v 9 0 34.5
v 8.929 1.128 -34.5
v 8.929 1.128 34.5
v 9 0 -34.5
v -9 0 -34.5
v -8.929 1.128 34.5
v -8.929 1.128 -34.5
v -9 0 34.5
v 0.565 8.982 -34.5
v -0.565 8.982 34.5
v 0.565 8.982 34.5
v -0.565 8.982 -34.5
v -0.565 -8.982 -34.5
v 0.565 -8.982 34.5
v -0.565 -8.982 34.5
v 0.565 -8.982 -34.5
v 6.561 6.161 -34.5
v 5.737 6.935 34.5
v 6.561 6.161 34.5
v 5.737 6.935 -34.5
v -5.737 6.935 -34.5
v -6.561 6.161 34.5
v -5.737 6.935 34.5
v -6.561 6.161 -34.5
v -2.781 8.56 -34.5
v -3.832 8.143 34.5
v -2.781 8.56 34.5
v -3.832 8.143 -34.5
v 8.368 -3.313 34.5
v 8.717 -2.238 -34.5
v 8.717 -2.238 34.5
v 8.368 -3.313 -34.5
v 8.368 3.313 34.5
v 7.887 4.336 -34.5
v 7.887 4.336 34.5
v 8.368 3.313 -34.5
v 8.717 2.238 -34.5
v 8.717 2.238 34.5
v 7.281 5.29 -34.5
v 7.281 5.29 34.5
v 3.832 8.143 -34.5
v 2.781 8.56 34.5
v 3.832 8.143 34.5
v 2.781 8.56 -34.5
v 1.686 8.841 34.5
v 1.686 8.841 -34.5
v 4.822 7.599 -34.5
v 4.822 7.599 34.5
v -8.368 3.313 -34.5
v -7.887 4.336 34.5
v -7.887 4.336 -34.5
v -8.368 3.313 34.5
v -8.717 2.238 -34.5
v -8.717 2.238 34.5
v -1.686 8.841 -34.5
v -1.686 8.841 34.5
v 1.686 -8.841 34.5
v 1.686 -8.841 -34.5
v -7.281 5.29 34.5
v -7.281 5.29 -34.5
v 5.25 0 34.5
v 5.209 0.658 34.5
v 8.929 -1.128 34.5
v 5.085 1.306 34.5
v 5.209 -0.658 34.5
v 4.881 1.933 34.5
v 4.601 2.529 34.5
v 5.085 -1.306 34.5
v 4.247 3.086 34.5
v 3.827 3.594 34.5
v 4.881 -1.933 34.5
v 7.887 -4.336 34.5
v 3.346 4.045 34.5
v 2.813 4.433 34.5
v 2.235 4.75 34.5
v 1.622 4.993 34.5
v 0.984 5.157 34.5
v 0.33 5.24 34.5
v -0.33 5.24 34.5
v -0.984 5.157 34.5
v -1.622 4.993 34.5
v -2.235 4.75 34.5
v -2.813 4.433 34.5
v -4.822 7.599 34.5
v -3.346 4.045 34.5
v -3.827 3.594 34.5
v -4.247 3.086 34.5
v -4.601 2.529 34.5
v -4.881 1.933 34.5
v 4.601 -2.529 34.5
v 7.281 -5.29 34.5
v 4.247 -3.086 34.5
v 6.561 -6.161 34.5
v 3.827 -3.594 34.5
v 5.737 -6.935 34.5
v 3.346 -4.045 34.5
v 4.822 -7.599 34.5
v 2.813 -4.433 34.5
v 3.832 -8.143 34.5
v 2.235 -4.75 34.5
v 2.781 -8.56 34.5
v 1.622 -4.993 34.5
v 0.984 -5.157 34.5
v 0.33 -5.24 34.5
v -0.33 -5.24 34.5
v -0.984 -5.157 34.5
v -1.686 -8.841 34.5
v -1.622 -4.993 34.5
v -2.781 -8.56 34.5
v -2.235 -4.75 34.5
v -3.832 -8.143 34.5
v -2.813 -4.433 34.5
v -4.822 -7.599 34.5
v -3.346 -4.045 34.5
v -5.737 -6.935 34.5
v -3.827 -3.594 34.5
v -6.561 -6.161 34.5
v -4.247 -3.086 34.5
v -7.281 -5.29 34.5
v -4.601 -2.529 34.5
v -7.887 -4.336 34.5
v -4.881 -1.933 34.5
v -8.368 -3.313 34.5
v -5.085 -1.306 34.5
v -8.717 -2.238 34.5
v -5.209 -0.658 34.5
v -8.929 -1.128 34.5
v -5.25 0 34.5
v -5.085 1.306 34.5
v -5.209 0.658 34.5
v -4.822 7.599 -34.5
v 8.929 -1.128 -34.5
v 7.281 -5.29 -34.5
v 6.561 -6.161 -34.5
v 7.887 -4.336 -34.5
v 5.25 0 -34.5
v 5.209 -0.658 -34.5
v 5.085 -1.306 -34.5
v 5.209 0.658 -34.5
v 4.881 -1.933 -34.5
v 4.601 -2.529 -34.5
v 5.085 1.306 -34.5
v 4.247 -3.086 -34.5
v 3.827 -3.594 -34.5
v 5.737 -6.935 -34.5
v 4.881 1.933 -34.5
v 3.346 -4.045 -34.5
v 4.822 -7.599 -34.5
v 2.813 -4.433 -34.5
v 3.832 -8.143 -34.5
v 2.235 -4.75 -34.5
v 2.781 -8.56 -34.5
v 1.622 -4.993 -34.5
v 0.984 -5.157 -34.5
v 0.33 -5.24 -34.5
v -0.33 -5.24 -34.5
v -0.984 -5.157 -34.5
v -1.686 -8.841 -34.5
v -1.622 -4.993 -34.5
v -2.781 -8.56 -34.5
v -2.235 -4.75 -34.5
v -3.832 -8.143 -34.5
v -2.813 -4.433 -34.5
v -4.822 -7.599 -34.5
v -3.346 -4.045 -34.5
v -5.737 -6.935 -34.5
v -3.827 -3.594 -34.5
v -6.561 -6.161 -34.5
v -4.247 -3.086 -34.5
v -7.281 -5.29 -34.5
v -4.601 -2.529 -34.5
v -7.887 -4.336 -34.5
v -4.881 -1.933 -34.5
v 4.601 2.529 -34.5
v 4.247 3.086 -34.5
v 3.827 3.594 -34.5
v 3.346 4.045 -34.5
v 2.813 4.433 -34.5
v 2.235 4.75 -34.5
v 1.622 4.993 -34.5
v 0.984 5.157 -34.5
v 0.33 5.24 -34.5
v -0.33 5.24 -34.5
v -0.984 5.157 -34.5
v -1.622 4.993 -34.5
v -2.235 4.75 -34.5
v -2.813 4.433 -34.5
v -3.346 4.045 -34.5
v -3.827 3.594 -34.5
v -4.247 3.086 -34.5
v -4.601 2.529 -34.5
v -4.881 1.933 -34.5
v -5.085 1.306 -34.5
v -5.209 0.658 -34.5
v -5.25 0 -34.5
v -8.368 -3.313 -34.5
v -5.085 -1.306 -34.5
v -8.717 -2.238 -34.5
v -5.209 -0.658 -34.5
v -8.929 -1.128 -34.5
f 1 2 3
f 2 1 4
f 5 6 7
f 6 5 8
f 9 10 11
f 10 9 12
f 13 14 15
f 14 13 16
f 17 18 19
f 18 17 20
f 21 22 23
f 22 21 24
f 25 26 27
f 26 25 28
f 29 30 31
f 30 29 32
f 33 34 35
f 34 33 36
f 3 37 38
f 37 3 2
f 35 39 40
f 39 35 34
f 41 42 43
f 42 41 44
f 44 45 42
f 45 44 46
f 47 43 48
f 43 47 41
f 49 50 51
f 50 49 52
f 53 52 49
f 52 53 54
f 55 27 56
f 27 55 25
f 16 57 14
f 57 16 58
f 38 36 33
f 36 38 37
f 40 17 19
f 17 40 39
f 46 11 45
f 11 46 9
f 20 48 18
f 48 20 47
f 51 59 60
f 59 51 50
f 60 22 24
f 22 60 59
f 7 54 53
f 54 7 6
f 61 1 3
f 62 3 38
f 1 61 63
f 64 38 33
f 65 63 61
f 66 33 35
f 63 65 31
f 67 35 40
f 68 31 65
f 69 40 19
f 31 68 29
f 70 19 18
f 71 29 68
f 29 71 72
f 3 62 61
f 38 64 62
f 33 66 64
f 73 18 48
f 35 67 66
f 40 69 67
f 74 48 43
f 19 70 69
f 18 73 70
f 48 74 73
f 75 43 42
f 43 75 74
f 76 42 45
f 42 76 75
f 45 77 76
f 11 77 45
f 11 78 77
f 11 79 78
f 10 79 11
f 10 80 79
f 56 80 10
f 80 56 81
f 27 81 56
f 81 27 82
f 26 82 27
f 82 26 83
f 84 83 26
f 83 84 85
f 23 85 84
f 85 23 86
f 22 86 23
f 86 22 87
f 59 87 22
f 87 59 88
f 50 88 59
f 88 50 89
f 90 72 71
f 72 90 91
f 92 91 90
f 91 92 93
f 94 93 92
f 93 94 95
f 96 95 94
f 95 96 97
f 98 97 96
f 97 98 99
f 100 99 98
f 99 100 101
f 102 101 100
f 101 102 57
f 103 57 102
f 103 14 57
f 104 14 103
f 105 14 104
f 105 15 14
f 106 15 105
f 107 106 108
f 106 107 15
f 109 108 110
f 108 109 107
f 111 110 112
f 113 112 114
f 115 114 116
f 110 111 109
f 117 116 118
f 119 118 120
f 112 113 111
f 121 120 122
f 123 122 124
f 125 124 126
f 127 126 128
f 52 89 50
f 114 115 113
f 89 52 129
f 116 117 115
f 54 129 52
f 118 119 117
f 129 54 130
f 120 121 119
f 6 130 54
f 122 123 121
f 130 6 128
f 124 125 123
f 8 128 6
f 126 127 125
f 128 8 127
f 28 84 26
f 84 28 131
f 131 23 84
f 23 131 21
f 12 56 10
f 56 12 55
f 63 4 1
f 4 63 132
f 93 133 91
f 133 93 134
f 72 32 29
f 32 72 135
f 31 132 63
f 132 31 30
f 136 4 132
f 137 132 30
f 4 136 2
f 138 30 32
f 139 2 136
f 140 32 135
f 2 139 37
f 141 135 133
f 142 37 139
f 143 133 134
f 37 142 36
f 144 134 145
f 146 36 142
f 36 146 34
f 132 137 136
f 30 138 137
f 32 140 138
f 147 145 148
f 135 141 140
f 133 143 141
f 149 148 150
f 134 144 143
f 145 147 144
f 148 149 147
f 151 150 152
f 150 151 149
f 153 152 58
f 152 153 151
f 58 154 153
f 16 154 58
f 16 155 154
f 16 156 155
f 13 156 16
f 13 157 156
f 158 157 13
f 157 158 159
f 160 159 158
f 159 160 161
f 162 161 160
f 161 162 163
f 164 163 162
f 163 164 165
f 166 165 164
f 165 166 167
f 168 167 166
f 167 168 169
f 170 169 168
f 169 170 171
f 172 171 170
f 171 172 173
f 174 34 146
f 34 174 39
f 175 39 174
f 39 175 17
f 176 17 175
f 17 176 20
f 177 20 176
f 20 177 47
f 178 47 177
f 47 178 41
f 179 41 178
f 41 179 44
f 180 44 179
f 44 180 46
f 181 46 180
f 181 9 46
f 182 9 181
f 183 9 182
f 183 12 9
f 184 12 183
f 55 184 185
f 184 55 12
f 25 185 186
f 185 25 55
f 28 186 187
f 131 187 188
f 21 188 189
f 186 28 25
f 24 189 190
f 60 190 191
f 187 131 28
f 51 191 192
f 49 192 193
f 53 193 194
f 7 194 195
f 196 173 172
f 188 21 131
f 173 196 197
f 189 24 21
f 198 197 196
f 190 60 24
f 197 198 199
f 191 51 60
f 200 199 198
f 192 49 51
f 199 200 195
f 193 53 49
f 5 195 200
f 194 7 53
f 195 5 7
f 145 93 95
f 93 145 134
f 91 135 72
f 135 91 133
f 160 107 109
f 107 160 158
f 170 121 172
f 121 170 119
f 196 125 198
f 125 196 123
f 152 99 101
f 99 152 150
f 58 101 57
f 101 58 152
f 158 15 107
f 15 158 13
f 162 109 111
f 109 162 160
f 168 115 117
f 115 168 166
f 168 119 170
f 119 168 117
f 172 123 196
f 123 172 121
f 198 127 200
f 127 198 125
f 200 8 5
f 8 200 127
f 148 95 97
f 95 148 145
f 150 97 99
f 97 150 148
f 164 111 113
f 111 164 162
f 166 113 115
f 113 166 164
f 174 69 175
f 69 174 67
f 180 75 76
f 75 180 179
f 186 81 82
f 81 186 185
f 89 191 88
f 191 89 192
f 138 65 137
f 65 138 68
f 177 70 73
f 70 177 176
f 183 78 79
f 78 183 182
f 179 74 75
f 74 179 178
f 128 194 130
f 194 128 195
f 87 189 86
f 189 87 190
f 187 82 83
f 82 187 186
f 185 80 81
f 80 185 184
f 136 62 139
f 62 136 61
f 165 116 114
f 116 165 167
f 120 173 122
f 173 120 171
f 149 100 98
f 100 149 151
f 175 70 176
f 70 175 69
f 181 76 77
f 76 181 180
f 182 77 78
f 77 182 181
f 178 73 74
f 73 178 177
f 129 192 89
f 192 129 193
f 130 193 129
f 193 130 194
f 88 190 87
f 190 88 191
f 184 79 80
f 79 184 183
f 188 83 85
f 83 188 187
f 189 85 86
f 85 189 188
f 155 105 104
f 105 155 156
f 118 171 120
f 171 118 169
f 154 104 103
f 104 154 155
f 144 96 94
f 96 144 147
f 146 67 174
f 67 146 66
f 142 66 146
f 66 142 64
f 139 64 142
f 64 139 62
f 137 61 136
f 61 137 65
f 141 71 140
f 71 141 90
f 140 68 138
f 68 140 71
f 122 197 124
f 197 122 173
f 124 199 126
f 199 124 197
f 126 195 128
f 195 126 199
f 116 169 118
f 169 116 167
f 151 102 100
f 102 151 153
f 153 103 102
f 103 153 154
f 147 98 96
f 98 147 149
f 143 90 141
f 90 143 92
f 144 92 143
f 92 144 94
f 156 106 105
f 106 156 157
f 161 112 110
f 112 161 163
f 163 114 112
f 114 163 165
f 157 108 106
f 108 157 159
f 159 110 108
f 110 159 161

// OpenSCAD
$fn = 50;


difference() {
	union() {
		translate(v = [0, 0, -34.5000000000]) {
			cylinder(h = 69, r = 9.0000000000);
		}
	}
	union() {
		translate(v = [0, 0, -100.0000000000]) {
			cylinder(h = 200, r = 5.2500000000);
		}
	}
}
